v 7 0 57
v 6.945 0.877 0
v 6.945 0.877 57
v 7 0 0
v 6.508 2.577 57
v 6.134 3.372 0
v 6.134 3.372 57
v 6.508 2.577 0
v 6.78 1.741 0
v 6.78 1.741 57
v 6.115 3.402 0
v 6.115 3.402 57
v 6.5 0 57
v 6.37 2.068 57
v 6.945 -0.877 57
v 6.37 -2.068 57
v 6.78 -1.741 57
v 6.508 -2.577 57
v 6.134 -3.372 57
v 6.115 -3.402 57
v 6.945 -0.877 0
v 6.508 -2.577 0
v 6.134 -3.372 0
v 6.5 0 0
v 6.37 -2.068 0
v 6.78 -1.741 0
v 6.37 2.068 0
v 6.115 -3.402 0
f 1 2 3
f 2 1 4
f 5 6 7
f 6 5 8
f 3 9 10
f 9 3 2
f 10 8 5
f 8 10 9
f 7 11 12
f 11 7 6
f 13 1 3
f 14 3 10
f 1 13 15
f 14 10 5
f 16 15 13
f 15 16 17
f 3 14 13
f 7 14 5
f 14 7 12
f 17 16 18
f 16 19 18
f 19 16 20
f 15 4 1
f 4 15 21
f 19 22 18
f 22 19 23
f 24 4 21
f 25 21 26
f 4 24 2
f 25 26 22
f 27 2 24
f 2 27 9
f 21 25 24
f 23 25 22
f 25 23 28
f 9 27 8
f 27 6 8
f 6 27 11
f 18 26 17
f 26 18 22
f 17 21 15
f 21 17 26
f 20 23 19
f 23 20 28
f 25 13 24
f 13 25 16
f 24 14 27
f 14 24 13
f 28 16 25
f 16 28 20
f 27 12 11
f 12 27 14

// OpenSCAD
$fn = 50;


difference() {
	union() {
		cylinder(h = 57, r = 7.0000000000);
		translate(v = [-13.0000000000, 0, 0]) {
			cylinder(h = 57, r = 7.0000000000);
		}
	}
	union() {
		cylinder(h = 57, r = 3.2500000000);
		cylinder(h = 57, r = 1.8000000000);
		cylinder(h = 57, r = 1.8000000000);
		cylinder(h = 57, r = 1.8000000000);
		translate(v = [-17.5000000000, 0, 0]) {
			hull() {
				translate(v = [-3.7500000000, 0.0000000000, 0]) {
					cylinder(h = 57, r = 10.5000000000);
				}
				translate(v = [3.7500000000, 0.0000000000, 0]) {
					cylinder(h = 57, r = 10.5000000000);
				}
				translate(v = [-3.7500000000, -0.0000000000, 0]) {
					cylinder(h = 57, r = 10.5000000000);
				}
				translate(v = [3.7500000000, -0.0000000000, 0]) {
					cylinder(h = 57, r = 10.5000000000);
				}
			}
		}
		translate(v = [-10.0000000000, 0, 0.0000000000]) {
			cylinder(h = 57, r = 16.5000000000);
		}
	}
}
